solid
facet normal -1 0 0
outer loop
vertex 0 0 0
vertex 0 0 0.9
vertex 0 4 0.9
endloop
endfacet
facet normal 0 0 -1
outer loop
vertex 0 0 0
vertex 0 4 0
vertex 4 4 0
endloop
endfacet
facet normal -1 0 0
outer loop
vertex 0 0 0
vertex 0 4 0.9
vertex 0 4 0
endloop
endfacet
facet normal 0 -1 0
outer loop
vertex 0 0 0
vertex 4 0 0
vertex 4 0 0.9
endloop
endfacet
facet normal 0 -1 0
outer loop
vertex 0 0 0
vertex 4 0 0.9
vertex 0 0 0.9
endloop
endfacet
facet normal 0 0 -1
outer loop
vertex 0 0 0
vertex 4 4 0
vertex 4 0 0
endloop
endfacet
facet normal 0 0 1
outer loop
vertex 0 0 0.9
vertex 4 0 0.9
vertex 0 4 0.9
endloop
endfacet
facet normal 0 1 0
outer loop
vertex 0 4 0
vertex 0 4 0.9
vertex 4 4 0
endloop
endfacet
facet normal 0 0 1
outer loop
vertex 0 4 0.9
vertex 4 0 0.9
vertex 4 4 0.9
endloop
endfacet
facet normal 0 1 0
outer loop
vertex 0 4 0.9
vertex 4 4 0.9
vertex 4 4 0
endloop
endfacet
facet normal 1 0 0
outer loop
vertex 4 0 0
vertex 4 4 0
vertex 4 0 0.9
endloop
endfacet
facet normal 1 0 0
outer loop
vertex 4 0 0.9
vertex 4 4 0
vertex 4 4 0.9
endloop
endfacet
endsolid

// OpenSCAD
/* Warning, this is a very basic generator with a lot of approximation 
input data : [VQFN, P4A, 4x4x0.9mm, 28, , A, C04-01114A]
generated by com.zoubworld.electronics.cad.model3d.Basic
Date : Sun Feb 15 10:50:49 CET 2026
*/

//body
color("black")
translate([0,0,0])
cube([4.0,4.0,0.9], center=false);
